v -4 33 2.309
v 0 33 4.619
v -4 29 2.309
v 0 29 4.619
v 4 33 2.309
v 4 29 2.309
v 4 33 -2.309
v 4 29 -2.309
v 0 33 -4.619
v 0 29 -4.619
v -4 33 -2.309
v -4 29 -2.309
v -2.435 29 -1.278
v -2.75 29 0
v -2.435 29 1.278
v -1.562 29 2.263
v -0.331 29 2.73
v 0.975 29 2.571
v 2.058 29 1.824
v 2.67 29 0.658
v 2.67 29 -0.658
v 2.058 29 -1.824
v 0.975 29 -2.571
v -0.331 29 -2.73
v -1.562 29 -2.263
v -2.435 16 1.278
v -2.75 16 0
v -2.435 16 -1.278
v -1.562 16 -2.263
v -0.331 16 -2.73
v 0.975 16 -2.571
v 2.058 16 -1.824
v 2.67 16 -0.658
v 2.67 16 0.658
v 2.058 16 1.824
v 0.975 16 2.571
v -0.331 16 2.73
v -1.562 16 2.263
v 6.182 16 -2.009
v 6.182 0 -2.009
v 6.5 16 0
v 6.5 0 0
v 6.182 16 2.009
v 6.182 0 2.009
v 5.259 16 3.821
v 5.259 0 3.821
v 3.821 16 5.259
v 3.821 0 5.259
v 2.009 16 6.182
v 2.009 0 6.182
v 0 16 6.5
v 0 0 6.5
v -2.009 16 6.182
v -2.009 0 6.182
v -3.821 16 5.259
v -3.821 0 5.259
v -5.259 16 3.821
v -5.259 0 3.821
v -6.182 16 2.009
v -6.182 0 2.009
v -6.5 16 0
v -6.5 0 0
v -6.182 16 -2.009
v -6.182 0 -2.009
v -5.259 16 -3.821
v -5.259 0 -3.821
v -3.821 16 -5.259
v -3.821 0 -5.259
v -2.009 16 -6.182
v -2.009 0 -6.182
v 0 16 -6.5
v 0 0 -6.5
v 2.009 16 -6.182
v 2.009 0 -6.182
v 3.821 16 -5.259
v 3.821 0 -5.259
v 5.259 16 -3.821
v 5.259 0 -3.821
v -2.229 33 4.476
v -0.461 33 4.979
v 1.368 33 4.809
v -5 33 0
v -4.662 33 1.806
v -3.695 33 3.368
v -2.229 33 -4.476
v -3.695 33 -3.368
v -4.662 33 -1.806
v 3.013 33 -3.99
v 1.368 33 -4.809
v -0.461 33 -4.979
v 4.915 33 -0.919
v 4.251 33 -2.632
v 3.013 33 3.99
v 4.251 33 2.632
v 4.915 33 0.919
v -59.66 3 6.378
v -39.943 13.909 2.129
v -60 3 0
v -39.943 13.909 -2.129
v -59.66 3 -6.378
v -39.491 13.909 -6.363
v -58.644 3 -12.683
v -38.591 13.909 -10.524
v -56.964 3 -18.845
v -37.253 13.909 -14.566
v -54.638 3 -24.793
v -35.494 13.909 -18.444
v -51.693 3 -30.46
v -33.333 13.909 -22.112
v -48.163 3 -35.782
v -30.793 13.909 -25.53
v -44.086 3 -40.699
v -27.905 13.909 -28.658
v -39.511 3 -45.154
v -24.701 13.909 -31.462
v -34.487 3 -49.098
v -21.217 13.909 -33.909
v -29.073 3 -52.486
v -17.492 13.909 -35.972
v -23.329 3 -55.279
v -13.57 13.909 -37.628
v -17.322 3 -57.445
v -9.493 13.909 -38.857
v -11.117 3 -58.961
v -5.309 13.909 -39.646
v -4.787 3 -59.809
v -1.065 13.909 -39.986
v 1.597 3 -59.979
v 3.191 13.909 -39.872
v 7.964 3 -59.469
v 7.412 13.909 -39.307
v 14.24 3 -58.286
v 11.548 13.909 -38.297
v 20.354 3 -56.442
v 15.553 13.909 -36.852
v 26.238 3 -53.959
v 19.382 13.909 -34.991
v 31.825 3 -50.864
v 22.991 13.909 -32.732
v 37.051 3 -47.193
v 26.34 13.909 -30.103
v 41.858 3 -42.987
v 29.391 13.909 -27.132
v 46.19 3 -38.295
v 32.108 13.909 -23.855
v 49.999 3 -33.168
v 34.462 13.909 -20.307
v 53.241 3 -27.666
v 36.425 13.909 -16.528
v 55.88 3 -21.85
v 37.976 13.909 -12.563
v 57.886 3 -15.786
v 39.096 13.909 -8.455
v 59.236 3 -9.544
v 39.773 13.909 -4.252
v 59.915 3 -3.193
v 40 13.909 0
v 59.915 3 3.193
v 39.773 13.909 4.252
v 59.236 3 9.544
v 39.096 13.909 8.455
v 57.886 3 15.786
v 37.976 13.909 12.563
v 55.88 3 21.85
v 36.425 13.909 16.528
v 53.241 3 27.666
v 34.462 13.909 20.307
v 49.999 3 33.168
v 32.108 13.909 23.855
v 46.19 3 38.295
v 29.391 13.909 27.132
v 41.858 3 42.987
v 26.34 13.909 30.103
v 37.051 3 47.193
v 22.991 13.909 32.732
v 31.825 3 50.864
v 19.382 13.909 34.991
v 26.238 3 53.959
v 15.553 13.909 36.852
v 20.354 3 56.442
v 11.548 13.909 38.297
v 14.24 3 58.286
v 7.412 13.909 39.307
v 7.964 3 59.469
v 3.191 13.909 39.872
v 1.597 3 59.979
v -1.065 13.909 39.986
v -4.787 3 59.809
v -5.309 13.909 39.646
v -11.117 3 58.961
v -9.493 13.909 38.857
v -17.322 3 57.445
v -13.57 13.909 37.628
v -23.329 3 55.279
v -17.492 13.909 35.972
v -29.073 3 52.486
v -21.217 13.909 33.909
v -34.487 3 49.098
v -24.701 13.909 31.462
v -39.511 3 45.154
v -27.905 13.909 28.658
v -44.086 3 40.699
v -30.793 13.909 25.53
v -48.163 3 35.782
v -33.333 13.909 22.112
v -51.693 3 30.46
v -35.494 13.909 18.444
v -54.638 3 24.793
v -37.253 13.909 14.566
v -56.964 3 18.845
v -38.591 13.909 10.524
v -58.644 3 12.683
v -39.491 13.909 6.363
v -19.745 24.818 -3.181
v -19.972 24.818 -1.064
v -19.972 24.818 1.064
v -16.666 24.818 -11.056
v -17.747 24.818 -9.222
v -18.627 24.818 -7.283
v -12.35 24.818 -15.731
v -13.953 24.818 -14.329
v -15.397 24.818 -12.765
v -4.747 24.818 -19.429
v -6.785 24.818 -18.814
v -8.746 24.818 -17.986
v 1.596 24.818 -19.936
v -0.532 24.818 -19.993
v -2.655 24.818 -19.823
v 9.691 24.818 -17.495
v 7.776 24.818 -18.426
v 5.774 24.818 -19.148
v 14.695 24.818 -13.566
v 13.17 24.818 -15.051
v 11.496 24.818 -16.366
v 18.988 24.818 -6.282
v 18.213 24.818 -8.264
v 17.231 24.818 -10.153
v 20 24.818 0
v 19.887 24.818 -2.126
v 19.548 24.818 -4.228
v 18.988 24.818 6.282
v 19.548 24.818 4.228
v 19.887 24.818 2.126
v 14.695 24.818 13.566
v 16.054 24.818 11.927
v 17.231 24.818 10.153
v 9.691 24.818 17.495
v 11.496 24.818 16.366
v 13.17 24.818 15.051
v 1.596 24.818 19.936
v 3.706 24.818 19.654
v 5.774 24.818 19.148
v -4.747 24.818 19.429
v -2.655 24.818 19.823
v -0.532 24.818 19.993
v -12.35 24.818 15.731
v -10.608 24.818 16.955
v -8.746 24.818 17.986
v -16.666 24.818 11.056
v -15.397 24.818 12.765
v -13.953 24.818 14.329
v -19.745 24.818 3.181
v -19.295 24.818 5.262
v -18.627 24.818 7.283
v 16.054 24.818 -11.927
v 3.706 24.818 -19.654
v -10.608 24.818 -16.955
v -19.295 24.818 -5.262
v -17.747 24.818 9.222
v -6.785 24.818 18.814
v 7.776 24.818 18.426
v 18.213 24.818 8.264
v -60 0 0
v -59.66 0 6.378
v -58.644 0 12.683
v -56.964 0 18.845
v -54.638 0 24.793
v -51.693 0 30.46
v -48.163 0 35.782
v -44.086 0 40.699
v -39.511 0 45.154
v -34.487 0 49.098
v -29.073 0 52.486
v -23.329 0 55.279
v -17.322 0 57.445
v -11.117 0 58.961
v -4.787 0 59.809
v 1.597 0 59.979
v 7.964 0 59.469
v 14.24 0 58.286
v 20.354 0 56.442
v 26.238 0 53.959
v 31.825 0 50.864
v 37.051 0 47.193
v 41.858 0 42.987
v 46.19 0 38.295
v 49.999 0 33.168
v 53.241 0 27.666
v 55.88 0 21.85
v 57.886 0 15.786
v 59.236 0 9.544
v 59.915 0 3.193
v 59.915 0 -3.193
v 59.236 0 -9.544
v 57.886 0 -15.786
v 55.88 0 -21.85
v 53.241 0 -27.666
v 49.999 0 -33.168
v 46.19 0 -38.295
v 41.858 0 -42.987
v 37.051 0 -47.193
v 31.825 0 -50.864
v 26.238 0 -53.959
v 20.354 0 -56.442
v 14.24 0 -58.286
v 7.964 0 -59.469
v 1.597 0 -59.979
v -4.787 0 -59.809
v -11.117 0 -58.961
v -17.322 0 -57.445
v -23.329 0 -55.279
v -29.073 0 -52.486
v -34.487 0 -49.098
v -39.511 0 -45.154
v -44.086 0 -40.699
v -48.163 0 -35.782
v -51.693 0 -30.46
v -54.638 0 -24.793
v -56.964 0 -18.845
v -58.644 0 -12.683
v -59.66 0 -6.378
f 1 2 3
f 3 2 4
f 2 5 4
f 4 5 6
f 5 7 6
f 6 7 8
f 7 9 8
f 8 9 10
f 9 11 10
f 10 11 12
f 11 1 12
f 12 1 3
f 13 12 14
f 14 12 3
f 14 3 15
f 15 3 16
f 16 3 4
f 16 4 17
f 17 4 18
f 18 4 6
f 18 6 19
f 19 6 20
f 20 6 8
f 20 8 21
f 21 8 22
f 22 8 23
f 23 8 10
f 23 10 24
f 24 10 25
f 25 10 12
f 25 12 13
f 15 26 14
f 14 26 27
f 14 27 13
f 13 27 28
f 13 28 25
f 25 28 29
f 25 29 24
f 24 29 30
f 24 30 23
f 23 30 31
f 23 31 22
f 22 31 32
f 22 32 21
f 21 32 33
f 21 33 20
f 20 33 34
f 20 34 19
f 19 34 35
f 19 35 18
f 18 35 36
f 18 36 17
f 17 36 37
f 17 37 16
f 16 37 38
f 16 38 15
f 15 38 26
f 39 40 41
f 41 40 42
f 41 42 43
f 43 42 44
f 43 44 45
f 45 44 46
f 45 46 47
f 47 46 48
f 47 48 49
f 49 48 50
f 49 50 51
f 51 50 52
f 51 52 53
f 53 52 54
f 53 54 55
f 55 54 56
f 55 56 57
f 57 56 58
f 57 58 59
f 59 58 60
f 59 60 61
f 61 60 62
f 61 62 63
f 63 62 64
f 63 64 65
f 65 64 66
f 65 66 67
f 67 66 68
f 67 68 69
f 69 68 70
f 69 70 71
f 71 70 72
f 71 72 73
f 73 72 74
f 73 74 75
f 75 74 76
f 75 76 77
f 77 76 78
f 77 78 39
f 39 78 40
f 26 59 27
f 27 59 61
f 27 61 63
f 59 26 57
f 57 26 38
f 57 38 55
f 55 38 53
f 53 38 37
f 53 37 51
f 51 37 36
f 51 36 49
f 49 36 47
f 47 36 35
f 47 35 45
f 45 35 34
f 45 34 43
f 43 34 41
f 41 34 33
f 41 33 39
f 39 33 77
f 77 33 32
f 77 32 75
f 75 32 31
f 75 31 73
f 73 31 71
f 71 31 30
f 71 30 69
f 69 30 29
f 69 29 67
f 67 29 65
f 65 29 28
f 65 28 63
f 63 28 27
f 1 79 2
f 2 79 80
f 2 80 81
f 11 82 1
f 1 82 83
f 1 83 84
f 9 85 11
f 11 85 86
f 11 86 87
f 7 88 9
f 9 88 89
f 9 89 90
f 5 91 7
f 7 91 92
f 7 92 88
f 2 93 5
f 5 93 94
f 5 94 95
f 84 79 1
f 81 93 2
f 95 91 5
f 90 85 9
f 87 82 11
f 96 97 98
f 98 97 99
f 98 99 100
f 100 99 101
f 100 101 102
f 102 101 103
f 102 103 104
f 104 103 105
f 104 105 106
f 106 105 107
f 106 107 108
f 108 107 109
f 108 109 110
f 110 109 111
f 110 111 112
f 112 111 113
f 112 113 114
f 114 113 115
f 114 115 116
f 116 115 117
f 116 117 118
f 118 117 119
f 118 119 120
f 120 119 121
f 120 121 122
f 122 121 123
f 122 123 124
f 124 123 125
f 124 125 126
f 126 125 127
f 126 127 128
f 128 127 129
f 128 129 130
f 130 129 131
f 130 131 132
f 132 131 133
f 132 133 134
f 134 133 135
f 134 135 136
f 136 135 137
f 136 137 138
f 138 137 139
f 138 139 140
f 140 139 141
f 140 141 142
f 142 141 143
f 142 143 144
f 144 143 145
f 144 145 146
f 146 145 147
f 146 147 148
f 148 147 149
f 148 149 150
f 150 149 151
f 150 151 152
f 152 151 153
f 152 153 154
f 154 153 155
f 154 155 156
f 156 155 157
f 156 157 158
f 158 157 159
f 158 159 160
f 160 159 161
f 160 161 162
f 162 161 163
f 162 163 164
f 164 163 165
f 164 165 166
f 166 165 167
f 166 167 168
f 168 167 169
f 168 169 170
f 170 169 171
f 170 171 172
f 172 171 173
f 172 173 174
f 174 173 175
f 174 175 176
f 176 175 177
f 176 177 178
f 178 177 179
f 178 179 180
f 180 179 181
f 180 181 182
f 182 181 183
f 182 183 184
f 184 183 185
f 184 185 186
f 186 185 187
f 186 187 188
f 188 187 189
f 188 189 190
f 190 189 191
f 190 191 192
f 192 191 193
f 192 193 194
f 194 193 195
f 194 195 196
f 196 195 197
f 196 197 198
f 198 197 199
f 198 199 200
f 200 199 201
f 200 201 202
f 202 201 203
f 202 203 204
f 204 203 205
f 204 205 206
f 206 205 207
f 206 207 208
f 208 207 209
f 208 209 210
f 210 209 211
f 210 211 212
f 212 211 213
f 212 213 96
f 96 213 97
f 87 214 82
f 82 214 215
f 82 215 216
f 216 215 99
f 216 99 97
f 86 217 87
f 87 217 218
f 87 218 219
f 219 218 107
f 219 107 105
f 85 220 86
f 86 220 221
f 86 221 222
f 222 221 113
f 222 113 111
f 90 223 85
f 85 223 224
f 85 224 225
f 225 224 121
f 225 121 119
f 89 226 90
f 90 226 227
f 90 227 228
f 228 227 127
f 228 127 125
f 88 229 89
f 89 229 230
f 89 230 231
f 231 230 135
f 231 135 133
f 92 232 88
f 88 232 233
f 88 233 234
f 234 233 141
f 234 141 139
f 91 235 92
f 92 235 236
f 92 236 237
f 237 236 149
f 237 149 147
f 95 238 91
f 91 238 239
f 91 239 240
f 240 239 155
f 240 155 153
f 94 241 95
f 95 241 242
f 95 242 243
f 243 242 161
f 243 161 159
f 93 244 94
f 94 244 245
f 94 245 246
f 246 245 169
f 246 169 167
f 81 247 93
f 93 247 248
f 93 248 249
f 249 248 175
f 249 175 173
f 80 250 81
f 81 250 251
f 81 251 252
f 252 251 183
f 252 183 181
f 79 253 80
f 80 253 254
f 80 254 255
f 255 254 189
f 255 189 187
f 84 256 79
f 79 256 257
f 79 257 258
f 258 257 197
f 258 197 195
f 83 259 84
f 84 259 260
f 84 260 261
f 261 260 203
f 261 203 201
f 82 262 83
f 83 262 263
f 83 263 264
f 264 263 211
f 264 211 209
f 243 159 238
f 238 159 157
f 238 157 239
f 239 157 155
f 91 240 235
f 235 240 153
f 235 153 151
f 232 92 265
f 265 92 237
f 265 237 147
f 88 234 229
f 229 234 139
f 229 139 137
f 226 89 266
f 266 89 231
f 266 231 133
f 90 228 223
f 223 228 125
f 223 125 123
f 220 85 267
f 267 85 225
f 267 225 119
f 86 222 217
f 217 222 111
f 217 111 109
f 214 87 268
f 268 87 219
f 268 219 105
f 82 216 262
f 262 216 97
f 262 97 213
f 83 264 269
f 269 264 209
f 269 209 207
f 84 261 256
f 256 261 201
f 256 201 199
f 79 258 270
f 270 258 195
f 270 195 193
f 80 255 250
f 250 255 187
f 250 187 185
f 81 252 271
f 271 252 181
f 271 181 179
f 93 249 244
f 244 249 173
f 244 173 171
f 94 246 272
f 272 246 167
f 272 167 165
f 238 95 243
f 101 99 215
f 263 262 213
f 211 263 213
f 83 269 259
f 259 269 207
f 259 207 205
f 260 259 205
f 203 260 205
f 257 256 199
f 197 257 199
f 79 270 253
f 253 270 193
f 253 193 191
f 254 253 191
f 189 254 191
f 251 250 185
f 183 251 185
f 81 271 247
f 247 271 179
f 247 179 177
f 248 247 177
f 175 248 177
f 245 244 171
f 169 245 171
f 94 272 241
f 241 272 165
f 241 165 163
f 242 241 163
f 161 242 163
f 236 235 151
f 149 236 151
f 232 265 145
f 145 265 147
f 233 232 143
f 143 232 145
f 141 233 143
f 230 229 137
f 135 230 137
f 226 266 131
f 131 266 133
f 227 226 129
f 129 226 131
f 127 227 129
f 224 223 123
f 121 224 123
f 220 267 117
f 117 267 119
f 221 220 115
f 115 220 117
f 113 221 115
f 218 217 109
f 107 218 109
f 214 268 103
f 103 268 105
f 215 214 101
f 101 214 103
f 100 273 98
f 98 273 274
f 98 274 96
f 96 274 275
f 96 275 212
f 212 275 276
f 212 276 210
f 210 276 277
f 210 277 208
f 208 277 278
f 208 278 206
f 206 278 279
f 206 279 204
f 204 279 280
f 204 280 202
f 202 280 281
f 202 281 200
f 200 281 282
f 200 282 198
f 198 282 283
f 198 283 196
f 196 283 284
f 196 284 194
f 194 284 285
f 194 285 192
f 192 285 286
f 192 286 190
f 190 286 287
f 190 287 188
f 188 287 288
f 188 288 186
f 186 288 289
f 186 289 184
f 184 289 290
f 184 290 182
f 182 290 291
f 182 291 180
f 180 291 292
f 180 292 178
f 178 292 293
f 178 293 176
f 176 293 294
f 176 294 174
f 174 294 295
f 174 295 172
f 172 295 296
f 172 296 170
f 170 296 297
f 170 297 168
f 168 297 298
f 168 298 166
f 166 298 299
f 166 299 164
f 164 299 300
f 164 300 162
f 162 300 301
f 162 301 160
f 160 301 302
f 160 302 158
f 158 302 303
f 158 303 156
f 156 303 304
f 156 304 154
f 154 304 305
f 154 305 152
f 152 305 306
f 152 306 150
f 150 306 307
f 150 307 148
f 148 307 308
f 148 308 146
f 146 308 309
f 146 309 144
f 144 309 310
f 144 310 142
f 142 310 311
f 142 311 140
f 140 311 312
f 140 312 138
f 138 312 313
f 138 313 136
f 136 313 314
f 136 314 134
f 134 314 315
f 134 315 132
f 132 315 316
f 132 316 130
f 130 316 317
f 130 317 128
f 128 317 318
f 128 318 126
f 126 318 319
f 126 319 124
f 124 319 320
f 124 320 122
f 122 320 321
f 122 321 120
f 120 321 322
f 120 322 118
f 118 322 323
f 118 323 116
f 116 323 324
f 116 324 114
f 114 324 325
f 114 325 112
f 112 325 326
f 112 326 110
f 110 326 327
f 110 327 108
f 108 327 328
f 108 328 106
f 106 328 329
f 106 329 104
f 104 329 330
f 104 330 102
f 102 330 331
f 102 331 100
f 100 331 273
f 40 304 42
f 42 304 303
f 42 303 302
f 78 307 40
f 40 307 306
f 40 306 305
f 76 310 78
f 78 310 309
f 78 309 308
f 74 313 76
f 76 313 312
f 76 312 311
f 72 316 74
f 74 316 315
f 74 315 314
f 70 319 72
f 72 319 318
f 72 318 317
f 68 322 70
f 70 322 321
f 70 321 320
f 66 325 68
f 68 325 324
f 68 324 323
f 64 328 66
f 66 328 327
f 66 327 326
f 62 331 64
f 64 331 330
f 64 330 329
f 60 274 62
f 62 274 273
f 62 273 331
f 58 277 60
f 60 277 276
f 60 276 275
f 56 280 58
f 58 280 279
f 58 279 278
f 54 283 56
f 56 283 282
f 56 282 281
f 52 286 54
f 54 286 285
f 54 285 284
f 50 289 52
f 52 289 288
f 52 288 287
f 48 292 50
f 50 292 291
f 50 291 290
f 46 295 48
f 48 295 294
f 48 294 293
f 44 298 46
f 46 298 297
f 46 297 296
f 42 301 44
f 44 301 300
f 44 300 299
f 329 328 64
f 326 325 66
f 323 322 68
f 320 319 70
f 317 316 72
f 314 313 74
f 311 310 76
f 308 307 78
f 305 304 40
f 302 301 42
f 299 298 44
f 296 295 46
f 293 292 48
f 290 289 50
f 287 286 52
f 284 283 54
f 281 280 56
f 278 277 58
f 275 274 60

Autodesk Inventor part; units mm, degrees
ref_plane "YZ Plane" through (0, 0, 0) normal (1, 0, 0) x (0, 1, 0)
ref_plane "XZ Plane" through (0, 0, 0) normal (0, 1, 0) x (-1, 0, 0)
sketch "Sketch1" plane through (0, 0, 0) normal (0, 1, 0) x (-1, 0, 0)
  circle A0 centre (0, 0) radius 60
  dimension "d0" = 120
extrude "Extrusion1" add sketch "Sketch1" along normal blind 3
ref_plane "Work Plane1" through (0, 33, 0) normal (0, 1, 0) x (1, 0, 0)
sketch "Sketch2" plane through (0, 33, 0) normal (0, 1, 0) x (1, 0, 0)
  circle A0 centre (0, 0) radius 5
  dimension "d5" = 10
loft "Loft1" add profiles "Sketch2" section 1 edges at (60, 3, 0)
sketch "Sketch3" plane through (0, 0, 0) normal (0, -1, 0) x (1, 0, 0)
  circle A0 centre (0, 0) radius 6.5
  dimension "d10" = 13
extrude "Extrusion2" cut sketch "Sketch3" against normal blind 16
sketch "Sketch5" plane through (0, 33, 0) normal (0, 1, 0) x (1, 0, 0)
  circle A0 centre (0, 0) radius 2.75
  dimension "d16" = 5.5
extrude "Extrusion4" cut sketch "Sketch5" against normal through all
sketch "Sketch6" plane through (0, 33, 0) normal (0, 1, 0) x (1, 0, 0)
  line L0 (0, 4.6188) -> (4, 2.3094)
  line L1 (4, 2.3094) -> (4, -2.3094)
  line L2 (4, -2.3094) -> (0, -4.6188)
  line L3 (0, -4.6188) -> (-4, -2.3094)
  line L4 (-4, -2.3094) -> (-4, 2.3094)
  line L5 (-4, 2.3094) -> (0, 4.6188)
  point P0 (0, 0)
  point P1 (0, 0)
  dimension "d19" = 8
extrude "Extrusion5" cut sketch "Sketch6" against normal blind 4
properties part number "Bottom_Foot"
